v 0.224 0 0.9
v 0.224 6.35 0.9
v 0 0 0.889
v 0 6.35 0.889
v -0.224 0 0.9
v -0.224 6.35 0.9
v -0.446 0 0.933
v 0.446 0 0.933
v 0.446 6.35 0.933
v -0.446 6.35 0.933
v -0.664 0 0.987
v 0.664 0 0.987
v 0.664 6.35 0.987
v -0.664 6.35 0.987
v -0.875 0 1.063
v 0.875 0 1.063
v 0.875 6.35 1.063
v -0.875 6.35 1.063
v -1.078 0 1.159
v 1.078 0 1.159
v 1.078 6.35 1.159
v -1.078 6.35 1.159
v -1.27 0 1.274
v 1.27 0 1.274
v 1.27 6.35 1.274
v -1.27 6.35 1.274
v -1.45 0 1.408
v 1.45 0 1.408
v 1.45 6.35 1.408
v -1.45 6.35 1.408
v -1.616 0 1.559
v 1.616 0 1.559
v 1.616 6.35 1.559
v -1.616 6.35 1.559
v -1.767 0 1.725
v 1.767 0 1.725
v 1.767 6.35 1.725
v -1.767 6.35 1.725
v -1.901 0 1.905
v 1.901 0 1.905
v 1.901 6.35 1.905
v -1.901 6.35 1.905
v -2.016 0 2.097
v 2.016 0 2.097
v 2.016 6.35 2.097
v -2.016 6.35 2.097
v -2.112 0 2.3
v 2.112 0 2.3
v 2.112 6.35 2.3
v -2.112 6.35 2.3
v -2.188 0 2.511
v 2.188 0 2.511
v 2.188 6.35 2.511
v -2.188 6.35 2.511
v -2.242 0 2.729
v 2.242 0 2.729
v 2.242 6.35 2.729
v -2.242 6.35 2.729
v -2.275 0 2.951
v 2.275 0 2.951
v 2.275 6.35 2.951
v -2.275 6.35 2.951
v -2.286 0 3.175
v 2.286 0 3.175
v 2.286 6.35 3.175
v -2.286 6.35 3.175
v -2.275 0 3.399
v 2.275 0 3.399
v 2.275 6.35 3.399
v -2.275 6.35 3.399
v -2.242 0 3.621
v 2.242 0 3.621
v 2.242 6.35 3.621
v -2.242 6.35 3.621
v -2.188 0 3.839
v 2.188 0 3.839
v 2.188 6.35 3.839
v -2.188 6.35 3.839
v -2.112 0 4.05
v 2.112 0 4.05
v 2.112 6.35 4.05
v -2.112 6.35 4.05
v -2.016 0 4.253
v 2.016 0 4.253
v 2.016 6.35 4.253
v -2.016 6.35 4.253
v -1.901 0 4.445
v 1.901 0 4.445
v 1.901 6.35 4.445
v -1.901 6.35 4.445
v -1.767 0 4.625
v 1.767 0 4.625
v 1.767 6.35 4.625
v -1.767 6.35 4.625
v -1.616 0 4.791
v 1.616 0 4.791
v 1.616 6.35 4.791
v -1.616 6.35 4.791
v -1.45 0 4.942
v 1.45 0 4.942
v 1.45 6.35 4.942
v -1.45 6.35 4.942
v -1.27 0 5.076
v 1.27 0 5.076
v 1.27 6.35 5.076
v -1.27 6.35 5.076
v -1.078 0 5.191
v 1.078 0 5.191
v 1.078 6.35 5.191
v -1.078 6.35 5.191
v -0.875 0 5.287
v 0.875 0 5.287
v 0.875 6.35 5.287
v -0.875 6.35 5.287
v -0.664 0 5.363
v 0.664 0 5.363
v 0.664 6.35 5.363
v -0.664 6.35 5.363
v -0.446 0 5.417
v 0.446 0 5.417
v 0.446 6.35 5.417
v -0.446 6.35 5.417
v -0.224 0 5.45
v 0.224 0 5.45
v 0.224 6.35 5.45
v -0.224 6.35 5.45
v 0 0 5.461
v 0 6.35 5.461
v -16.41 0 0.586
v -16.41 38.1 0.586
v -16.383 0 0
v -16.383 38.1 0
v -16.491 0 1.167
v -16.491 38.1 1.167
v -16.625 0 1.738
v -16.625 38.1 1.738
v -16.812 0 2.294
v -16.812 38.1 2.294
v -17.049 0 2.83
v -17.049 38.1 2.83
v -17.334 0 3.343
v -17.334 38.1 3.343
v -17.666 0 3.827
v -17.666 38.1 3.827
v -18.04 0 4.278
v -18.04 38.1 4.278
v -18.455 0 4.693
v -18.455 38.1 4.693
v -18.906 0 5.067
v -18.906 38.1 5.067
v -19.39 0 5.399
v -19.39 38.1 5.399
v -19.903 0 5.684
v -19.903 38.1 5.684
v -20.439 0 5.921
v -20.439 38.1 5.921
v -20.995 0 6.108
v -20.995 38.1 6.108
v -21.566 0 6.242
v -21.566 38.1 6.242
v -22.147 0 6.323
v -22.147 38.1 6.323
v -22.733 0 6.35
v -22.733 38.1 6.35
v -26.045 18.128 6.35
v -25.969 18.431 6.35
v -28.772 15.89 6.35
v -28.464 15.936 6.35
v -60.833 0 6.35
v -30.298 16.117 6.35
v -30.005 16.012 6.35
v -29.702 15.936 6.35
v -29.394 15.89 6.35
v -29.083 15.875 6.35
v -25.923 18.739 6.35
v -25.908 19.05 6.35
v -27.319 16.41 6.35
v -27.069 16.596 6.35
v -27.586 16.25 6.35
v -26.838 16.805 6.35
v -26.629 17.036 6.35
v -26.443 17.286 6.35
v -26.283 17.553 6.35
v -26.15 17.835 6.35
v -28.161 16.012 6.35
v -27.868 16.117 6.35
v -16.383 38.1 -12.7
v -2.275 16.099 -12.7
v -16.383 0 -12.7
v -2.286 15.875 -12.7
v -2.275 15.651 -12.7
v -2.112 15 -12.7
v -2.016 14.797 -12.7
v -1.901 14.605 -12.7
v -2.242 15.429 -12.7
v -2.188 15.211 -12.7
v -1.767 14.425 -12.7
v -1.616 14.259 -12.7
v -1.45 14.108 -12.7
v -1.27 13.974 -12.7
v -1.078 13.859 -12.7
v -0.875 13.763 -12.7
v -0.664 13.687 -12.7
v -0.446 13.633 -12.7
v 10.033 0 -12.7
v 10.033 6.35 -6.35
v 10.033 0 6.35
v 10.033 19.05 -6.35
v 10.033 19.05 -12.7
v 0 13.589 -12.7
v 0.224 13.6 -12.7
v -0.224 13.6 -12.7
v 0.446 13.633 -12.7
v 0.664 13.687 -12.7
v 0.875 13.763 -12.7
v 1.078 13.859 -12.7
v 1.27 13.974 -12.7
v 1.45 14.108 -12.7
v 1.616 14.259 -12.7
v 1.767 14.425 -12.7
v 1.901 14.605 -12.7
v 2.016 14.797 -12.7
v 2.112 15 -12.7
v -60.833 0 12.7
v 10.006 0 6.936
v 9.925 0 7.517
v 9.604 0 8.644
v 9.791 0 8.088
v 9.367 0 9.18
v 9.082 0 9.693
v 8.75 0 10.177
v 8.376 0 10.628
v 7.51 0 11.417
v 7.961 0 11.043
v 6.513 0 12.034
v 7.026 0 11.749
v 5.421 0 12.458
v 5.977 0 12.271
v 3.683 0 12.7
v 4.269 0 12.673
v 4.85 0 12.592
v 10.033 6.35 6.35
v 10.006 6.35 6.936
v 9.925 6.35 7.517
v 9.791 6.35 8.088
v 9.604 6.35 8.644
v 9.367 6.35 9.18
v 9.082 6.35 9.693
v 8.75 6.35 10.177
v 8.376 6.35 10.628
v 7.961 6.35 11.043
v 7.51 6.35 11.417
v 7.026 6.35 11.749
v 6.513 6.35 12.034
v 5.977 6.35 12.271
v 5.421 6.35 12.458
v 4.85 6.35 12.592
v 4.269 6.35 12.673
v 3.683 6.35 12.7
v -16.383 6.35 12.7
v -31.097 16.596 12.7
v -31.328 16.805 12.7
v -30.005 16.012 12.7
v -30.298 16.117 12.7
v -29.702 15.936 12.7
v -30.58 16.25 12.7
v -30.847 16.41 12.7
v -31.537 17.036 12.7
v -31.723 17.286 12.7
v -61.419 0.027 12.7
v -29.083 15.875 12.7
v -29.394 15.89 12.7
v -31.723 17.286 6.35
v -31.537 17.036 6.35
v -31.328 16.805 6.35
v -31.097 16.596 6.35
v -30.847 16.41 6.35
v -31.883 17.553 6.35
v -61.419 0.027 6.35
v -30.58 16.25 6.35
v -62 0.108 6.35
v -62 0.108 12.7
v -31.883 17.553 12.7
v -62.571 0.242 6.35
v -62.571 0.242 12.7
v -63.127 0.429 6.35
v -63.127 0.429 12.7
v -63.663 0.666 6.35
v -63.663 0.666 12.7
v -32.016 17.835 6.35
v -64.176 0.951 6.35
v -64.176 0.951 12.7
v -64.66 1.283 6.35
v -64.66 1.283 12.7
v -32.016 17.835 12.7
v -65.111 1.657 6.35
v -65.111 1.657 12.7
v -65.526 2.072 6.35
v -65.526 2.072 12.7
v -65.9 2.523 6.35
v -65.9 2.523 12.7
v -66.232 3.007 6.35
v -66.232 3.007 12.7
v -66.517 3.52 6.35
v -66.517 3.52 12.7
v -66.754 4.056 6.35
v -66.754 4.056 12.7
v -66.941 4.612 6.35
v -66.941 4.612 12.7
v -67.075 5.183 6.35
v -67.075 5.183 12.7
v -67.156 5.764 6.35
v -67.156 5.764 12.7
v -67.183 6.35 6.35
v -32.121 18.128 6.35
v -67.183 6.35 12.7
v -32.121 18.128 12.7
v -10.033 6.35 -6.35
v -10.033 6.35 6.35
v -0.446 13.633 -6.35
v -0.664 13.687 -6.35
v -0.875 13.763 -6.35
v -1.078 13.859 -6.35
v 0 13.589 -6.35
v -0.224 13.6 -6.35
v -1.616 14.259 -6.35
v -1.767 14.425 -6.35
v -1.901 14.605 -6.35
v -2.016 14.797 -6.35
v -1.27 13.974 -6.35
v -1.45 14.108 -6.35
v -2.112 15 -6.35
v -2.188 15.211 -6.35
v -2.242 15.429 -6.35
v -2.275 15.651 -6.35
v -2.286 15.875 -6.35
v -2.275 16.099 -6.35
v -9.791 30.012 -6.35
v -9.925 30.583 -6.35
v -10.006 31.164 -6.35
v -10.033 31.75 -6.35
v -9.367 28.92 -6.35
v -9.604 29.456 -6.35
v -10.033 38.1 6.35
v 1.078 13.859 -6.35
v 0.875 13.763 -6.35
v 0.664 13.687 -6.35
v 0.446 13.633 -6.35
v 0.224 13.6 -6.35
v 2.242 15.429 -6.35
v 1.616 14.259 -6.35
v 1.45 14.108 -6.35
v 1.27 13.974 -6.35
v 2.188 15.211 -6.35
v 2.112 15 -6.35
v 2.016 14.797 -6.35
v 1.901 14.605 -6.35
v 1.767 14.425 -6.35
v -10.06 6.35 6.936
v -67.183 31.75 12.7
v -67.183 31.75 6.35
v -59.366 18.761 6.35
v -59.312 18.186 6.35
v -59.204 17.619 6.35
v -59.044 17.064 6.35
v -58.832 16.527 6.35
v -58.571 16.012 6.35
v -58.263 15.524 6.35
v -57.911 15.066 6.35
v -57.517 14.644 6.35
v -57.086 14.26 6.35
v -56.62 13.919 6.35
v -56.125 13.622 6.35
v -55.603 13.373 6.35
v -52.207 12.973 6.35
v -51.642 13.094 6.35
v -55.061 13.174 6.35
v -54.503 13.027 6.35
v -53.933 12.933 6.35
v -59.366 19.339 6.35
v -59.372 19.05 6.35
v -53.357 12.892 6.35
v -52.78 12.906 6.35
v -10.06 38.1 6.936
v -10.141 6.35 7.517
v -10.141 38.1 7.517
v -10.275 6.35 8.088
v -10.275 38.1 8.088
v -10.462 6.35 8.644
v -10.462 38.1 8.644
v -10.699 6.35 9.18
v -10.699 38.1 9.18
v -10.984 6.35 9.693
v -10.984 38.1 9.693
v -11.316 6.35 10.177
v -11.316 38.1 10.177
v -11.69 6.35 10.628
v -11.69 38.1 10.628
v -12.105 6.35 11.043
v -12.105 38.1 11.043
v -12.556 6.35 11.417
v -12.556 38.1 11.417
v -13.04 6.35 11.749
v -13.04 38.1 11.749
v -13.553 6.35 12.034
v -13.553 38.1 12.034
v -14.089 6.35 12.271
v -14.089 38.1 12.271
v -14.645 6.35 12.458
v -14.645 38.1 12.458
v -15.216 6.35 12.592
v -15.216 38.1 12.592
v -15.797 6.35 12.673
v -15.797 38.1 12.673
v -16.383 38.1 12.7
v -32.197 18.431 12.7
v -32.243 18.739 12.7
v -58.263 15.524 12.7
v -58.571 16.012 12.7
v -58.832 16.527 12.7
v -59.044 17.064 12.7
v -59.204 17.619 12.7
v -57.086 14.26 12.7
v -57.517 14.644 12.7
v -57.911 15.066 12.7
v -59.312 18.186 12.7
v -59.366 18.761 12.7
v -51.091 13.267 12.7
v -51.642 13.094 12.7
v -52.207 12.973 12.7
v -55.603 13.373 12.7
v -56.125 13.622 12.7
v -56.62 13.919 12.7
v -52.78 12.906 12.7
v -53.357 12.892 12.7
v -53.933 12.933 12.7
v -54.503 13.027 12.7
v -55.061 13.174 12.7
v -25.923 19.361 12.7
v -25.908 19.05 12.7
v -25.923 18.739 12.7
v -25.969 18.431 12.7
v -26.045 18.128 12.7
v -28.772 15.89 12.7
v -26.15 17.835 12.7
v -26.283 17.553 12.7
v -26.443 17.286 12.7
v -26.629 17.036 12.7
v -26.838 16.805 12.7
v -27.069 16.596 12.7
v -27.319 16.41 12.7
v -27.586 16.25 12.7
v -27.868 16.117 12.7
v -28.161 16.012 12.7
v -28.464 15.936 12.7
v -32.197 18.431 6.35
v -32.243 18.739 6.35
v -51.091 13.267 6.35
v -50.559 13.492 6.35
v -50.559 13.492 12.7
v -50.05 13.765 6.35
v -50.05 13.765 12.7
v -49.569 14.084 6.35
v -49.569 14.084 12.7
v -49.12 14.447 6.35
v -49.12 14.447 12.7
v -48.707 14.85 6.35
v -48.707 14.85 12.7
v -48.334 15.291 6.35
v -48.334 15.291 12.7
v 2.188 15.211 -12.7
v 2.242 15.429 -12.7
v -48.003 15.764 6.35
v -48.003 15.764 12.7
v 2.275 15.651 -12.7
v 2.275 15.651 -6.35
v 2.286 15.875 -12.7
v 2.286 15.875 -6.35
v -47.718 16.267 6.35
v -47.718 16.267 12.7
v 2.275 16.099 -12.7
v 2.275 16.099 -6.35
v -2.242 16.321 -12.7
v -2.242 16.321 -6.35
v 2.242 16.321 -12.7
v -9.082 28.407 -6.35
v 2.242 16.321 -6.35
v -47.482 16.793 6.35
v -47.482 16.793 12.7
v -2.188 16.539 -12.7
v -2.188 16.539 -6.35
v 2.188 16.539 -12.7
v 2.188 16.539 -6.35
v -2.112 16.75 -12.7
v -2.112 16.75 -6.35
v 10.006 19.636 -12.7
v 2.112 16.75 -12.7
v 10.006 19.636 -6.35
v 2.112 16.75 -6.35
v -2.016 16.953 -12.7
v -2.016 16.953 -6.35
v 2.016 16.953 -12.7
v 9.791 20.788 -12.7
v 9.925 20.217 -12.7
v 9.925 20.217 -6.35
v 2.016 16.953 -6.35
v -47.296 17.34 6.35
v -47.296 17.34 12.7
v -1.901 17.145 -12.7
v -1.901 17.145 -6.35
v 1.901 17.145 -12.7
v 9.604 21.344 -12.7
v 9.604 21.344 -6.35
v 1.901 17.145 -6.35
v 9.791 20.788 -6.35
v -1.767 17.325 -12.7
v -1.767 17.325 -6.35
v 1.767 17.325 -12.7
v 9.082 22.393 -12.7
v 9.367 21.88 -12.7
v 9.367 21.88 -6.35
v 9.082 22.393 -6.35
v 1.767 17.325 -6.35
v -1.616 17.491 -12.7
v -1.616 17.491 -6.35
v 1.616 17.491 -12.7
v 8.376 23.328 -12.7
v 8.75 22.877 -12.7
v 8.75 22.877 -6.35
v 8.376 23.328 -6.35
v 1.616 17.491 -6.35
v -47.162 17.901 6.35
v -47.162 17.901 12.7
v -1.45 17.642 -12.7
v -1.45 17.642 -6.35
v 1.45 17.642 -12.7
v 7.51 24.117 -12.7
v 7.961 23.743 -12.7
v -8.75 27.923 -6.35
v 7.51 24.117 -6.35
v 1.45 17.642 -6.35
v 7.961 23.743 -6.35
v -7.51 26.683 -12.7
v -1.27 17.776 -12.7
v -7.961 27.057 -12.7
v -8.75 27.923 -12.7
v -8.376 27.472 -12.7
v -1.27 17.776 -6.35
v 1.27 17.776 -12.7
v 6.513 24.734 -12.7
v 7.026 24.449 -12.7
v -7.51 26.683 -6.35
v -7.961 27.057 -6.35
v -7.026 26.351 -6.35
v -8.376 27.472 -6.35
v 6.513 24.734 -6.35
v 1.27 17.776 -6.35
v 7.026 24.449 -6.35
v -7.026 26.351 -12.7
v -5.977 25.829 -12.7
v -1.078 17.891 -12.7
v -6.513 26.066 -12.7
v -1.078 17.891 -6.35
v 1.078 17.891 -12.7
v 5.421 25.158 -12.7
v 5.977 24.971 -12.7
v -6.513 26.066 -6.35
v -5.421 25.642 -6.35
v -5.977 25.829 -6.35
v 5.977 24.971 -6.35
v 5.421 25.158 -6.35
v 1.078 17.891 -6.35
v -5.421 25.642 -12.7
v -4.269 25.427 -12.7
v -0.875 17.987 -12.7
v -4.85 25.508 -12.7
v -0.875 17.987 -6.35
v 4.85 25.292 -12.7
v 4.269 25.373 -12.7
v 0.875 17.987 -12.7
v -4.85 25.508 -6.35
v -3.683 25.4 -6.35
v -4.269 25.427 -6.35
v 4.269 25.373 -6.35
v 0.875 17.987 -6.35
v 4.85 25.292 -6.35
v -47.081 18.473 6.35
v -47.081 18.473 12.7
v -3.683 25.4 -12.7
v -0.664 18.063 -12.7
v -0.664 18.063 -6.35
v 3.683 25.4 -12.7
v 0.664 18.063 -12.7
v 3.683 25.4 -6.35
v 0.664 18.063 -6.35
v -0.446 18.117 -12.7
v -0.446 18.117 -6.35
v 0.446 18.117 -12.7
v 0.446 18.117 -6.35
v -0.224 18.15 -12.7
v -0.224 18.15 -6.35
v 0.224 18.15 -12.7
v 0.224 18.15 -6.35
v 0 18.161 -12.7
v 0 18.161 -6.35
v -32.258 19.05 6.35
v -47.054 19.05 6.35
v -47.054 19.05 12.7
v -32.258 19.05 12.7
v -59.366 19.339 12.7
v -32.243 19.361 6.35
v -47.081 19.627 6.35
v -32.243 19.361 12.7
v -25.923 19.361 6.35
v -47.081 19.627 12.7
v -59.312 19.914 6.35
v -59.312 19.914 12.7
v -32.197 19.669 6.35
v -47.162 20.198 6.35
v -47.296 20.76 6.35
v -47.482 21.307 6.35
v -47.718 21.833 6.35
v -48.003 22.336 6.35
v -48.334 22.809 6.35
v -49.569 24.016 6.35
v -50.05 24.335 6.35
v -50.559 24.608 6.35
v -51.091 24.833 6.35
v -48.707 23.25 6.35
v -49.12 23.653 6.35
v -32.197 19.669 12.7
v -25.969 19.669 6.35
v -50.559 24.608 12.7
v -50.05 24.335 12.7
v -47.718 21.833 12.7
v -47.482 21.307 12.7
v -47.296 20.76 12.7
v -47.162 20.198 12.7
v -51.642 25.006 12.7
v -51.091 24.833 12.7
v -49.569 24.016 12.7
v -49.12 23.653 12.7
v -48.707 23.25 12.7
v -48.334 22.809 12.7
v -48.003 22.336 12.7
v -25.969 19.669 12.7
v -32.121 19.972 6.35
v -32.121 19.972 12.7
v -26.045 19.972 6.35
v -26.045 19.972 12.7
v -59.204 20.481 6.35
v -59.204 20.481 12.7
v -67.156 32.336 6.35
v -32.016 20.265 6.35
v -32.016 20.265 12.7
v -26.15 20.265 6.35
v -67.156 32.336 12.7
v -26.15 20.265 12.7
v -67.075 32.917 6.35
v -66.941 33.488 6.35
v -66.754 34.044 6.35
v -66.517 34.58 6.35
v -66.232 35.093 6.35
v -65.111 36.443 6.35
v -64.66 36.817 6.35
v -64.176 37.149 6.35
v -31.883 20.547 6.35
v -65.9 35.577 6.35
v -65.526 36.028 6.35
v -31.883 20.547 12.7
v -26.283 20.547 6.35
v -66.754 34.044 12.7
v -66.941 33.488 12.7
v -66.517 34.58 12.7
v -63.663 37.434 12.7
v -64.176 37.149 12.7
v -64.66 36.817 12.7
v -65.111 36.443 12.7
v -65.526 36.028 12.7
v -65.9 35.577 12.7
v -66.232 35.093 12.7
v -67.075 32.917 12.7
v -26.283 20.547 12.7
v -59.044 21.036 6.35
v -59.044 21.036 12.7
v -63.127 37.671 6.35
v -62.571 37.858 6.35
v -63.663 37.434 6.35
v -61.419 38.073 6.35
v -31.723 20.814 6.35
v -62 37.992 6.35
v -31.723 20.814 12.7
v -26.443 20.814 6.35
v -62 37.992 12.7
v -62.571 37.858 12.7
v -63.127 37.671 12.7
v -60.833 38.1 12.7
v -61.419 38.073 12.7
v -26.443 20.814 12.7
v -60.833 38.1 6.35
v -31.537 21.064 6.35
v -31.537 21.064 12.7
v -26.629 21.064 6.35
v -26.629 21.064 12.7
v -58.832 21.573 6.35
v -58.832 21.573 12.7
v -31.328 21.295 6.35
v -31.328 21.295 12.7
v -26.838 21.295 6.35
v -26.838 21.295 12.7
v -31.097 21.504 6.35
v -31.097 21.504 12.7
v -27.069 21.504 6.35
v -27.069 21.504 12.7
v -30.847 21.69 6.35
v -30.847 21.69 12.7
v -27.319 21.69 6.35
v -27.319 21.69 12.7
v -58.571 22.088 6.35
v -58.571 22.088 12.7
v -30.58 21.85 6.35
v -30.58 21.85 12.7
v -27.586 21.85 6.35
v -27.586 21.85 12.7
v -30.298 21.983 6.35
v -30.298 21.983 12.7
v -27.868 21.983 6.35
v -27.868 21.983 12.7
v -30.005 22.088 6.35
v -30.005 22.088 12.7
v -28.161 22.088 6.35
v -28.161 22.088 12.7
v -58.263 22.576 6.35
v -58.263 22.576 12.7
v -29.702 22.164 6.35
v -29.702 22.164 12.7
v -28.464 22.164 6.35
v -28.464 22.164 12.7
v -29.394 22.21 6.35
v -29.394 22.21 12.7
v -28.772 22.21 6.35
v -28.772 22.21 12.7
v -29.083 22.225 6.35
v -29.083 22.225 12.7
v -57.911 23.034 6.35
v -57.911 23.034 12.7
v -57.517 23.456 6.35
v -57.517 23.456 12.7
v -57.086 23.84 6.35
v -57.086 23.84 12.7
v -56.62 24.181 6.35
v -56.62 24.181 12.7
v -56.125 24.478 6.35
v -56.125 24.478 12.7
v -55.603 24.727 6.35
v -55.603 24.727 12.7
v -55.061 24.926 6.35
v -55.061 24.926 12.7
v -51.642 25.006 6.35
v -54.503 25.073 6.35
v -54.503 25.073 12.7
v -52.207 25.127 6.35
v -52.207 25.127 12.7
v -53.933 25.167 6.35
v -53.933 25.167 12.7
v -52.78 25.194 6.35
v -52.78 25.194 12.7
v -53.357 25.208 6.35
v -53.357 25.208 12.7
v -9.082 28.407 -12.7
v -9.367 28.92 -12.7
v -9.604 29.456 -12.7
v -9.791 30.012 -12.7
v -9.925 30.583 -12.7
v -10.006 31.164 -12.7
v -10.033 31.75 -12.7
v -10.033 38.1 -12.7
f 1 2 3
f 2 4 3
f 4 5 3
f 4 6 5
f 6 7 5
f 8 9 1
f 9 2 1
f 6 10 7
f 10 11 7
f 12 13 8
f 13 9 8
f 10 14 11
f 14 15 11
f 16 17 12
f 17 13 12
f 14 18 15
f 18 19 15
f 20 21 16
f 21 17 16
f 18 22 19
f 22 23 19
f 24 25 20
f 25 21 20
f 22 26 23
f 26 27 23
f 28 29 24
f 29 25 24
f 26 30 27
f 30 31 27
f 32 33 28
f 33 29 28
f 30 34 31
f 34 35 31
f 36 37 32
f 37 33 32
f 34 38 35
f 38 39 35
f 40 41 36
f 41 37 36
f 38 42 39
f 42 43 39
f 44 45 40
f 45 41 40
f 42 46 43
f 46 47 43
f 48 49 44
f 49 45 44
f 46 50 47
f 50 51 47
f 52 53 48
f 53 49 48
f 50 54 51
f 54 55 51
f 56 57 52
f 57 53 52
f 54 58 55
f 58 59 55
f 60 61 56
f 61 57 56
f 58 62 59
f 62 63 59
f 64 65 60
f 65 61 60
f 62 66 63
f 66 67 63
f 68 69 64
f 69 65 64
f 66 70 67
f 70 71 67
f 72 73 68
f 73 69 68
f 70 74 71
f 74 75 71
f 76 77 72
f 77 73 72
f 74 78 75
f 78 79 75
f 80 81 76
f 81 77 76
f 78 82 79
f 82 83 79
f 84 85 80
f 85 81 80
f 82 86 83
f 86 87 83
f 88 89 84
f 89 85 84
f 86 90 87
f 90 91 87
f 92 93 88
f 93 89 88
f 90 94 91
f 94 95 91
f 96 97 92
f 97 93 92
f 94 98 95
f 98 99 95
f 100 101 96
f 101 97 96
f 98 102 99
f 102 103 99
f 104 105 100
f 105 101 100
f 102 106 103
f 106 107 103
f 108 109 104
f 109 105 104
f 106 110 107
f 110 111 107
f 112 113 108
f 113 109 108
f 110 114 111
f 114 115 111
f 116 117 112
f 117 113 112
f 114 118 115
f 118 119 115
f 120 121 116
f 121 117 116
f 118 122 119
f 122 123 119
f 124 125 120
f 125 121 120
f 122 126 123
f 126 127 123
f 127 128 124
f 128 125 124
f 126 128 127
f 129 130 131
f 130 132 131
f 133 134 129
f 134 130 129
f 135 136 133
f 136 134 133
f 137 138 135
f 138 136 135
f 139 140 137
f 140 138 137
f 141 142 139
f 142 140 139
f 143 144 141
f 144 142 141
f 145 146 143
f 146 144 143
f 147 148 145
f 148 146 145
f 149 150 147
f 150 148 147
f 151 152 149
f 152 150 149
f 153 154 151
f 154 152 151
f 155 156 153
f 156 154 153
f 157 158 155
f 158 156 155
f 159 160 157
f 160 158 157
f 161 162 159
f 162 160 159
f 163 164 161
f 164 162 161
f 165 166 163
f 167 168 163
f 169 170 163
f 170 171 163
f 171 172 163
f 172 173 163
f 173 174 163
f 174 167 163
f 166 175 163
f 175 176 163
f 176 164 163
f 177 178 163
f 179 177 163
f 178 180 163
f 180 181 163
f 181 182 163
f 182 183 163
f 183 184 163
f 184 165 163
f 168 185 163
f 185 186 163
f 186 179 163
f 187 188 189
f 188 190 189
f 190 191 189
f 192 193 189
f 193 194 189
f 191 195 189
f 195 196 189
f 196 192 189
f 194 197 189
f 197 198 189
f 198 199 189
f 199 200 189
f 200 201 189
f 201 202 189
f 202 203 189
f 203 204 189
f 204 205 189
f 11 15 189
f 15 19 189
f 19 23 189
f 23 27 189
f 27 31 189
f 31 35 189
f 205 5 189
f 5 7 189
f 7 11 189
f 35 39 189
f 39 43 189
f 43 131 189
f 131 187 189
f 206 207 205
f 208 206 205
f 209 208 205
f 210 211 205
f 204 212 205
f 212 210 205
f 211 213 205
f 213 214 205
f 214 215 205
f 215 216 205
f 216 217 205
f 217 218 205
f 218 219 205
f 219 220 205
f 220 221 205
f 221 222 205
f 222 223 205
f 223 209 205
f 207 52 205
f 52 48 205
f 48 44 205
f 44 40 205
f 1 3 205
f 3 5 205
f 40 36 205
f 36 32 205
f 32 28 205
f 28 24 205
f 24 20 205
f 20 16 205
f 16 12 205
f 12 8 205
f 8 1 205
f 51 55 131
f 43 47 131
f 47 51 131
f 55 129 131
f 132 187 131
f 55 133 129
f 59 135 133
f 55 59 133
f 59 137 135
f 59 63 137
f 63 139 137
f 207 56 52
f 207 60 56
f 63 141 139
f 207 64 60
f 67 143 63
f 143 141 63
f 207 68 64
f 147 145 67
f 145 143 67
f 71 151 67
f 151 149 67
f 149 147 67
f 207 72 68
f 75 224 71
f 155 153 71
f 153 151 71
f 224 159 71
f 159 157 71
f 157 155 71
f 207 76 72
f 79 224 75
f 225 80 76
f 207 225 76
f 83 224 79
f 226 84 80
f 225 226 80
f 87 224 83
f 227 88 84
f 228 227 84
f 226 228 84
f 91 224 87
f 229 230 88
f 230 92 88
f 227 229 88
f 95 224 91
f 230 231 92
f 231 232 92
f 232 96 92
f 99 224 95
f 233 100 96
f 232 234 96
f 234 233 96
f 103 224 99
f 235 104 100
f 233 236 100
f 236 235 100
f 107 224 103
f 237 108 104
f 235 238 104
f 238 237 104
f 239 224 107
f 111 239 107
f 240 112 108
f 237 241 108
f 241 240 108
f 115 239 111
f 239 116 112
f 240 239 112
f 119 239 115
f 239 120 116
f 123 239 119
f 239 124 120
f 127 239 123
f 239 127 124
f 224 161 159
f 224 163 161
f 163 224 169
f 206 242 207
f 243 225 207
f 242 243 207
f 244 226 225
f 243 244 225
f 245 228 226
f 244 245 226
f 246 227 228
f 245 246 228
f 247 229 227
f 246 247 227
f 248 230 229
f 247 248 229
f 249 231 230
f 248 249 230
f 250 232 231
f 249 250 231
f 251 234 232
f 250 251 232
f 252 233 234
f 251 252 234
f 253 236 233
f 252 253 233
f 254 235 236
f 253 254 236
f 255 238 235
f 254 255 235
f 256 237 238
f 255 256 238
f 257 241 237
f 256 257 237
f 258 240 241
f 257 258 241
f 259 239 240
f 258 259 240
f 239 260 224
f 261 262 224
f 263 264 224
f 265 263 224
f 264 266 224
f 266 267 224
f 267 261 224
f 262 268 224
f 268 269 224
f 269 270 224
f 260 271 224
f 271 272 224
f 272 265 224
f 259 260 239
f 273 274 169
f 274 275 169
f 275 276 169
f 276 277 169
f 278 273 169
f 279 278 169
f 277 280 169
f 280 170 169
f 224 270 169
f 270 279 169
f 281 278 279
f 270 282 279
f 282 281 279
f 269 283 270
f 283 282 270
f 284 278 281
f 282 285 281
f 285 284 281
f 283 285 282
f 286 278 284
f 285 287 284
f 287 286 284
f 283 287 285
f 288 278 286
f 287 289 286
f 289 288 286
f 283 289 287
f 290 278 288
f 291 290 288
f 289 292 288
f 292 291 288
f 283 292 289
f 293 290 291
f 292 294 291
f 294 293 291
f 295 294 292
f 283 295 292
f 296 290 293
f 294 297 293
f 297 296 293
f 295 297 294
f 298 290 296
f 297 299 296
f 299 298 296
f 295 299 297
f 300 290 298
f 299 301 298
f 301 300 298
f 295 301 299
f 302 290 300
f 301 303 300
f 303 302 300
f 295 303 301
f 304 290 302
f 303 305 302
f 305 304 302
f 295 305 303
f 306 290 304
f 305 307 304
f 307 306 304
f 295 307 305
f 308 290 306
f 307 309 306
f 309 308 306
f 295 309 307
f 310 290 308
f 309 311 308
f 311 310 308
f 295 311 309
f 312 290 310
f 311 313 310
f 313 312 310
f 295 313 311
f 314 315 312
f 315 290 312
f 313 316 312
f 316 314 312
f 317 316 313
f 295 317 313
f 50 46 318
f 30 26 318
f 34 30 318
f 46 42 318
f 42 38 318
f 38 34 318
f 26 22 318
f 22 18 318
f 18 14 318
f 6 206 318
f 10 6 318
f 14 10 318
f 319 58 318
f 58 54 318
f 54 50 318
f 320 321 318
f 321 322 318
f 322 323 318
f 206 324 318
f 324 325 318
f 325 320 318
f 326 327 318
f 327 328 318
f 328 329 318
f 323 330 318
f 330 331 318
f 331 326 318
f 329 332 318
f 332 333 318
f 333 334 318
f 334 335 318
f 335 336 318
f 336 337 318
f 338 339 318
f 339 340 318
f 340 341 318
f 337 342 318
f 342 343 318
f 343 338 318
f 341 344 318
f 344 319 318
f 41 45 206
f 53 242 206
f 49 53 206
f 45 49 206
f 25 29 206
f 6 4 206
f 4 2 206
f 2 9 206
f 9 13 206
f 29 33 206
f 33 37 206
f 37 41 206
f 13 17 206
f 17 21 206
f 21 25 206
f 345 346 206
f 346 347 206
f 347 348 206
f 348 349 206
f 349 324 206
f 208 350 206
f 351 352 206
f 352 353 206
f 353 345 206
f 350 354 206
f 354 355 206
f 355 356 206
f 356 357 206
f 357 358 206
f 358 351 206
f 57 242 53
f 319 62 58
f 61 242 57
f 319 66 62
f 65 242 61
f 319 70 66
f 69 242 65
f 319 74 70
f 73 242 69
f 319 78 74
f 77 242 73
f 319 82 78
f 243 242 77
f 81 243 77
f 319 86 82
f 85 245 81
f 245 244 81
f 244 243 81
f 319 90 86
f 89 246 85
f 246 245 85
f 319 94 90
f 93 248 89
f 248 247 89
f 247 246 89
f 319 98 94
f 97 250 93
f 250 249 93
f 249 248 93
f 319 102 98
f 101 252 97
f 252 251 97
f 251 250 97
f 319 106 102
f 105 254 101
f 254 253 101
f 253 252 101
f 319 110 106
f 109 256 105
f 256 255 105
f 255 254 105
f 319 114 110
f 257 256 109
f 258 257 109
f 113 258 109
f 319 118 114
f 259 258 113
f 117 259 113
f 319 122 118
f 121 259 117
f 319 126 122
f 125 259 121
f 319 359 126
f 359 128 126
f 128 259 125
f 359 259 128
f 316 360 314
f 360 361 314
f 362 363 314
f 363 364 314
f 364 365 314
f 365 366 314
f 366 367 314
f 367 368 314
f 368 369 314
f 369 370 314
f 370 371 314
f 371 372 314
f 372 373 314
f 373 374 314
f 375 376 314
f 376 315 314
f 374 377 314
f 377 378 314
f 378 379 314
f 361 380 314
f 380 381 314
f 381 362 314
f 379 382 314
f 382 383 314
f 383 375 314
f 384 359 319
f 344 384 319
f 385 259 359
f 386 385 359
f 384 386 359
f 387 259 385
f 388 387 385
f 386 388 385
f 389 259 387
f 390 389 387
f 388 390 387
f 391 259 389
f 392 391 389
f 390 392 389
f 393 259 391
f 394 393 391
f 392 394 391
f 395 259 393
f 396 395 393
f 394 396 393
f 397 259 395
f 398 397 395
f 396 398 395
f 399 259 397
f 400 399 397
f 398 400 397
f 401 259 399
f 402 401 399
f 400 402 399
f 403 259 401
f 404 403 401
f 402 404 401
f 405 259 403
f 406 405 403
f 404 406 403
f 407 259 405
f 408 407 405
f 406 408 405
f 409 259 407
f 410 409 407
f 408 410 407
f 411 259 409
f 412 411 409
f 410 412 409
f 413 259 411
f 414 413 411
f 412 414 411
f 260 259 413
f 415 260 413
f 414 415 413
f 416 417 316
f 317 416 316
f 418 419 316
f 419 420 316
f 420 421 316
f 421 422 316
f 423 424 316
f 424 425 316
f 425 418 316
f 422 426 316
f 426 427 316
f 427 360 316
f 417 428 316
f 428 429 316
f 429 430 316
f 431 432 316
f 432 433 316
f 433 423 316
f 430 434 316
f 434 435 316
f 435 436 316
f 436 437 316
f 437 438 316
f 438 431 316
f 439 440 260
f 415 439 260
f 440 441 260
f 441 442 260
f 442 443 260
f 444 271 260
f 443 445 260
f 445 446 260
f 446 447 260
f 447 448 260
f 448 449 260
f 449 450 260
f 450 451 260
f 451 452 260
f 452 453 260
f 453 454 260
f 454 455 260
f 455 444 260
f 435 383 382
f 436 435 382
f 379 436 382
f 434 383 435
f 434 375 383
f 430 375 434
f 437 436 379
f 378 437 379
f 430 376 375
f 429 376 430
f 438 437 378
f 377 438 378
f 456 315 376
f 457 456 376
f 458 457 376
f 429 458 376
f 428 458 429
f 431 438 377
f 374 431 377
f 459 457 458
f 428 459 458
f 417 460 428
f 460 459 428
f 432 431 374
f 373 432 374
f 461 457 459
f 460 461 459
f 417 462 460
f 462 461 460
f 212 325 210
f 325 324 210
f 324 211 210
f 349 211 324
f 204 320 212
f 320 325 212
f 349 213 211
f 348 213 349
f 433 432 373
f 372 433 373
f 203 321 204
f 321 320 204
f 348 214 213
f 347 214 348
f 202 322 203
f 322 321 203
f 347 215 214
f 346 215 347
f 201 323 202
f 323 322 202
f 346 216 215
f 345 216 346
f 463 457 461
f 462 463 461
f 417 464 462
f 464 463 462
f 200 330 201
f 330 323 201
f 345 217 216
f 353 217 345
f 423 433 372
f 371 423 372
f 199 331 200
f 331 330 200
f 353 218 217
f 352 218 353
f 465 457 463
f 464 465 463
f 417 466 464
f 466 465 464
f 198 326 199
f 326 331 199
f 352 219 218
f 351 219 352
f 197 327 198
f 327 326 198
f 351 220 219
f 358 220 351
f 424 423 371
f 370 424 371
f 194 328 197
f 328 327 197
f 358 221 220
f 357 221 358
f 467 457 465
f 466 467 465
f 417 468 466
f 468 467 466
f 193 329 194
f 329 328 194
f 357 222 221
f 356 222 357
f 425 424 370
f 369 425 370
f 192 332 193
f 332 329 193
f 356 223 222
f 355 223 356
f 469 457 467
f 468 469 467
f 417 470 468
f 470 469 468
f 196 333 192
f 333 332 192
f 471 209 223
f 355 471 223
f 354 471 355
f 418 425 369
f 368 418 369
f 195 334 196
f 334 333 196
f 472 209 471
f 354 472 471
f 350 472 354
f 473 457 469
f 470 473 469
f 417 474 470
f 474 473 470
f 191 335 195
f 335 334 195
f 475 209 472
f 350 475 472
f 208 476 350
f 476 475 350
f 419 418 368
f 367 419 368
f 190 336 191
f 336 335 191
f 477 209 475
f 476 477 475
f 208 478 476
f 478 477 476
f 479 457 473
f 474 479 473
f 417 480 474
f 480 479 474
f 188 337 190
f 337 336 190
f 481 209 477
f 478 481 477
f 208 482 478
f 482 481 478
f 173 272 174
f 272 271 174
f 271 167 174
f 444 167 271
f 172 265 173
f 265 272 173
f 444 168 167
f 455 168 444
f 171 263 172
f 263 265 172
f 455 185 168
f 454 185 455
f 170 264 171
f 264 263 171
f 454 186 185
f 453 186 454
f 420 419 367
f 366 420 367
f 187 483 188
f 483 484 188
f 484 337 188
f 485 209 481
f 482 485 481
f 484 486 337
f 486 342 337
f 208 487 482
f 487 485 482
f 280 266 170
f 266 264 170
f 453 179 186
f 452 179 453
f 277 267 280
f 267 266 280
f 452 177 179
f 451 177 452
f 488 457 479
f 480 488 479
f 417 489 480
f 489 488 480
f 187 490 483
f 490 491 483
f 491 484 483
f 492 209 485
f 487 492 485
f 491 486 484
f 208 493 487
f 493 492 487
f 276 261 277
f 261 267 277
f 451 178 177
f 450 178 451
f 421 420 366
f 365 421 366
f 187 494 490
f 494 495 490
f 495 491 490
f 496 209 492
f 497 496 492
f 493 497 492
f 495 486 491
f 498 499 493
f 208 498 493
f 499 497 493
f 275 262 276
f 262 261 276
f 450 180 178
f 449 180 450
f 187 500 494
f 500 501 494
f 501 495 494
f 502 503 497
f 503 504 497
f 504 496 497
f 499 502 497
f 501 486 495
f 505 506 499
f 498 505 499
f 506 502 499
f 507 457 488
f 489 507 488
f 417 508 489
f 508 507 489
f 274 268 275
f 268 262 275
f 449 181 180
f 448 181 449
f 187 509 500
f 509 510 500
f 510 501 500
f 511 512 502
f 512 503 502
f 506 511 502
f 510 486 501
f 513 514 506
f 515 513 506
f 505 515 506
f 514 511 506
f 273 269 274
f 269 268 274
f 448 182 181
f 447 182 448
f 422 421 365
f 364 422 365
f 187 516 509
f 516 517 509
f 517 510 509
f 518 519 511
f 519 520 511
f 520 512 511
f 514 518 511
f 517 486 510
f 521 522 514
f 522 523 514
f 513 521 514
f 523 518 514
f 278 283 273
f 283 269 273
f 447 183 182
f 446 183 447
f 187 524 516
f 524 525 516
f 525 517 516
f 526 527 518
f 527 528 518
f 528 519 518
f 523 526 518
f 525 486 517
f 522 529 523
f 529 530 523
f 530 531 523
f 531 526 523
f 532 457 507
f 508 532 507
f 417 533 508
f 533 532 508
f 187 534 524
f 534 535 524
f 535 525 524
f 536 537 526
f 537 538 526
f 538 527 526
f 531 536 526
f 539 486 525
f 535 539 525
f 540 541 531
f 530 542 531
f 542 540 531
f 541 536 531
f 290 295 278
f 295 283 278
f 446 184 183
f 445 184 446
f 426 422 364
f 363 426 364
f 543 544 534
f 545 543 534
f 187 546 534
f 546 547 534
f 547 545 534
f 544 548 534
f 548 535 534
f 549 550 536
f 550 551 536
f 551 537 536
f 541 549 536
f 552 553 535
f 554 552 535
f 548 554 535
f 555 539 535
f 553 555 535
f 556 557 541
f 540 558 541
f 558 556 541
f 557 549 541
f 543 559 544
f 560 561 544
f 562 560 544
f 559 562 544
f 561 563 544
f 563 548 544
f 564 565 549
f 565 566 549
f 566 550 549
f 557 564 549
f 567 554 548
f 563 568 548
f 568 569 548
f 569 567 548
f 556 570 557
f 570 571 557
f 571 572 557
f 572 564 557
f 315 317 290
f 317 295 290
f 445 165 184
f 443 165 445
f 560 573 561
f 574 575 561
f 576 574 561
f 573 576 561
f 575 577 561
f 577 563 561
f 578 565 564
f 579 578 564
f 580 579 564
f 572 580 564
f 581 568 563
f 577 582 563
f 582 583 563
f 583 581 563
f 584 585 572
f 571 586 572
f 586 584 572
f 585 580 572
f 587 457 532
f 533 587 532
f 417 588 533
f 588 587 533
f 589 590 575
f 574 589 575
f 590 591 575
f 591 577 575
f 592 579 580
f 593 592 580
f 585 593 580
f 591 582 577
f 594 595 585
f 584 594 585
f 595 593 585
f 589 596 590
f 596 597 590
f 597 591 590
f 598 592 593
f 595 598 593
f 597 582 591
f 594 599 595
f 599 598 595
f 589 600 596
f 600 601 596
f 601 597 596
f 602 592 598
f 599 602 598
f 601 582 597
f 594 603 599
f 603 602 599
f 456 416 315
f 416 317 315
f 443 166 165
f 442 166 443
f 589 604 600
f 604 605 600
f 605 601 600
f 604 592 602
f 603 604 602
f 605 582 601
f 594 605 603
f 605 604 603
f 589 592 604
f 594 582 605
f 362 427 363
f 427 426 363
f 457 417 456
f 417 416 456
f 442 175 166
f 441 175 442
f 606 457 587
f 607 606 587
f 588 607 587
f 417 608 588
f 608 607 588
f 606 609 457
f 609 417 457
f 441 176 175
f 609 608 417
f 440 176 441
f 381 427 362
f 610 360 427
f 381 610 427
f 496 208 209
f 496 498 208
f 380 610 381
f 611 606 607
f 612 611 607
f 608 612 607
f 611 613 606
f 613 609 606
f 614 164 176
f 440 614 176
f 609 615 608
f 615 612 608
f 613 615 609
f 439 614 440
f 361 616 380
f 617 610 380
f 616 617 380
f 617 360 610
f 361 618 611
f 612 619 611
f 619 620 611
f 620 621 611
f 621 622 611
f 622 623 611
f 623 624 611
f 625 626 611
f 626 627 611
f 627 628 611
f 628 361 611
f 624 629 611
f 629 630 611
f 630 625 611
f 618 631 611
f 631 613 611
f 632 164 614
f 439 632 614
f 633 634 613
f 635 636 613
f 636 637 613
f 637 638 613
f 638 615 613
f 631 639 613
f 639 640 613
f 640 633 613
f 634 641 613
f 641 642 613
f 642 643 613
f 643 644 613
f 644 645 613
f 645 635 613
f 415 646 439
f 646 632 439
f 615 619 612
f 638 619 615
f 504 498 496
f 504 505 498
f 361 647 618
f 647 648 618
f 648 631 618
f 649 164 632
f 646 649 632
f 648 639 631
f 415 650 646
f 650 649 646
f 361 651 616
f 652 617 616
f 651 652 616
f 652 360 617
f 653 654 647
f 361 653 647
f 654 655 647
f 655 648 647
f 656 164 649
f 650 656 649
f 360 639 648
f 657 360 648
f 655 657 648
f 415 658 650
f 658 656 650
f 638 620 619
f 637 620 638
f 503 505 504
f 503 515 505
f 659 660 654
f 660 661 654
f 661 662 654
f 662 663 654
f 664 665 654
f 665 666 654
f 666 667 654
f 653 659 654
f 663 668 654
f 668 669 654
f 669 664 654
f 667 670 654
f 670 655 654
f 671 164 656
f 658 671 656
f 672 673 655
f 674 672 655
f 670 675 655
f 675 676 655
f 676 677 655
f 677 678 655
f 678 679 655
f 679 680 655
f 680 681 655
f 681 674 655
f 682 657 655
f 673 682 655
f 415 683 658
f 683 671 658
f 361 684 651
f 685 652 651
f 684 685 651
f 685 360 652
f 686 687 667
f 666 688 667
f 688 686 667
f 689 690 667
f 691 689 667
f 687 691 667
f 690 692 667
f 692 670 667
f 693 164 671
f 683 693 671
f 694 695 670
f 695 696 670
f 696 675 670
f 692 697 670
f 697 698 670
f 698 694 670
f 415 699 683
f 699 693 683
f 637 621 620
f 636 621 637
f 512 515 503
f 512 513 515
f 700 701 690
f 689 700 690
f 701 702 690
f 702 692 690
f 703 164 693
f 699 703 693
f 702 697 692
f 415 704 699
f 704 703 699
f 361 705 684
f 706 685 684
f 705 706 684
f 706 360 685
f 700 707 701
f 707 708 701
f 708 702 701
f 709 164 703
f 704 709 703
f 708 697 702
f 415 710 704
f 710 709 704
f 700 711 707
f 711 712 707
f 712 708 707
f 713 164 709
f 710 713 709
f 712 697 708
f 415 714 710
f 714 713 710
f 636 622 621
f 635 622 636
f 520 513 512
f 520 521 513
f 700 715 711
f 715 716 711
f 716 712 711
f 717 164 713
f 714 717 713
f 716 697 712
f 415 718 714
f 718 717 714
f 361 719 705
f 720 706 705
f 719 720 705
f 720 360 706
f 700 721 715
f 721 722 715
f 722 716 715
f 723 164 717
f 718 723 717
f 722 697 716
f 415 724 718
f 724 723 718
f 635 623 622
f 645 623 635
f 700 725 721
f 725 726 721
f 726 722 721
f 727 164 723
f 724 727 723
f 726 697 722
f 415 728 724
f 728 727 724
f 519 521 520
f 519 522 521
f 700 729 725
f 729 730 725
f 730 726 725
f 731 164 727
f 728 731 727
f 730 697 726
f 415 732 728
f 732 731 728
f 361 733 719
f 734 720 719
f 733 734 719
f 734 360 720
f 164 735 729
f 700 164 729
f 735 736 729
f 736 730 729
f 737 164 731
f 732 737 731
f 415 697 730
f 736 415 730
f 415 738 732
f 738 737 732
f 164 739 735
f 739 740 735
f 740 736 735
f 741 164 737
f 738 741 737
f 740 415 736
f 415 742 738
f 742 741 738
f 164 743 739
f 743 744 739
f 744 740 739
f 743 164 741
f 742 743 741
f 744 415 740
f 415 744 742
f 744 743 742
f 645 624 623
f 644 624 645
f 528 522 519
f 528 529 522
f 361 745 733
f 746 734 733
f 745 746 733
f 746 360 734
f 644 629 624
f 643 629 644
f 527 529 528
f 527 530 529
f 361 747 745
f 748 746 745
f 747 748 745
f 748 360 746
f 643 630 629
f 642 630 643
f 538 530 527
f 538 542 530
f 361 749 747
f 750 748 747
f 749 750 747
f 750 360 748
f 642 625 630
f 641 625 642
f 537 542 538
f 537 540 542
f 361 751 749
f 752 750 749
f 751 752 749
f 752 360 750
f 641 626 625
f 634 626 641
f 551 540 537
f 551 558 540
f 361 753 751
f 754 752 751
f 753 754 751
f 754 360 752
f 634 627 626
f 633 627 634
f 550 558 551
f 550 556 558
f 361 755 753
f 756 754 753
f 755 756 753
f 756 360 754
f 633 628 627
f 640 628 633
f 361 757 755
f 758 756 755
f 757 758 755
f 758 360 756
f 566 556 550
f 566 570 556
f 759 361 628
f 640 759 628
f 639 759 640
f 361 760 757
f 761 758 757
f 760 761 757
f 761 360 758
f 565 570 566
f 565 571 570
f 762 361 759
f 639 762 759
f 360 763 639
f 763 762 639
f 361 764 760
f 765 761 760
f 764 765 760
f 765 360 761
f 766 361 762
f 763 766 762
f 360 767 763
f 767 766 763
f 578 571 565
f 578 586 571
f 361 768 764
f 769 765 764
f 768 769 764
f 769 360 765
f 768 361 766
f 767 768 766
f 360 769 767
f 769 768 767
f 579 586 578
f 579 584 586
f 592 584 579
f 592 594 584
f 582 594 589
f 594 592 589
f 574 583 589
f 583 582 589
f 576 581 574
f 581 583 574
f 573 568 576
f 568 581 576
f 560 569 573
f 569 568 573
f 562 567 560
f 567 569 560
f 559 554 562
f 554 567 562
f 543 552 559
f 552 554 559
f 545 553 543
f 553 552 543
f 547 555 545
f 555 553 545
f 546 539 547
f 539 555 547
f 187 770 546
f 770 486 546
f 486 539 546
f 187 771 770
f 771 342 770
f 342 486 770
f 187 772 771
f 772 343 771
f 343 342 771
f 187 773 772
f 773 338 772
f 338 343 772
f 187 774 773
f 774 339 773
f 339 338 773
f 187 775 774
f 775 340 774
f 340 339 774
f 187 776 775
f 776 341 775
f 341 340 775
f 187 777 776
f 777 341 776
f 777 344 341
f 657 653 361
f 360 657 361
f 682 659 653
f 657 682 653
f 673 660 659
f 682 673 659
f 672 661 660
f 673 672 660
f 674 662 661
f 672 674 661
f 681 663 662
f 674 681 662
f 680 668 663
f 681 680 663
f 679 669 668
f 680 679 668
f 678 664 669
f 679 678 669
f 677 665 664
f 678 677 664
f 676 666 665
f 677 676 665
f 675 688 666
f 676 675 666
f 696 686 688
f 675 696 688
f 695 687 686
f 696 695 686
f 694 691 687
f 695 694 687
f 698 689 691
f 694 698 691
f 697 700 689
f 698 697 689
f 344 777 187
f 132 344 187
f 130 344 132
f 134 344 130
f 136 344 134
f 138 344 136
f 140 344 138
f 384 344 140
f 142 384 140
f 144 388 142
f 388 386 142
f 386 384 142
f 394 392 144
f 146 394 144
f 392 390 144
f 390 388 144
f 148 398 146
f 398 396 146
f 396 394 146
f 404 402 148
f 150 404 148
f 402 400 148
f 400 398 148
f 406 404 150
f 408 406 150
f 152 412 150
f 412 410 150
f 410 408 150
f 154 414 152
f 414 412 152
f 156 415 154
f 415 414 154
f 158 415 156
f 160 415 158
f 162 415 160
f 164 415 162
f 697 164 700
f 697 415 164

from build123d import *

# Parameters (mm, degrees)
SKETCH1_W           = 20.066
SKETCH1_H           = 25.4
BOSS_EXTRUDE1_DEPTH = 6.35
SKETCH2_W           = 20.066
SKETCH2_H           = 25.4
BOSS_EXTRUDE2_DEPTH = 6.35
SKETCH3_W           = 25.4
SKETCH3_H           = 38.1
BOSS_EXTRUDE3_DEPTH = 6.35
SKETCH4_W           = 50.8
SKETCH4_H           = 38.1
BOSS_EXTRUDE4_DEPTH = 6.35
SKETCH6_R           = 2.286
CUT_EXTRUDE1_DEPTH  = 7.35
SKETCH7_R           = 2.286
CUT_EXTRUDE2_DEPTH  = 7.35
SKETCH8_R           = 6.1595
SKETCH8_R_2         = 3.175
CUT_EXTRUDE3_DEPTH  = 26.4
FILLET1_R           = 6.35


with BuildPart() as part:
    # Sketch1 → Boss-Extrude1 (new body)
    with BuildSketch(Plane(origin=(0, 0, 0), x_dir=(1, 0, 0), z_dir=(0, 1, 0))):
        Rectangle(SKETCH1_W, SKETCH1_H)
    extrude(amount=BOSS_EXTRUDE1_DEPTH)

    # Sketch2 → Boss-Extrude2 (add)
    with BuildSketch(Plane(origin=(0, 0, -12.7), x_dir=(-1, 0, 0), z_dir=(0, 0, -1))):
        with Locations((0, 12.7)):
            Rectangle(SKETCH2_W, SKETCH2_H)
    extrude(amount=-BOSS_EXTRUDE2_DEPTH)

    # Sketch3 → Boss-Extrude3 (add)
    with BuildSketch(Plane.ZY.offset(10.033)):
        with Locations((0, 19.05)):
            Rectangle(SKETCH3_W, SKETCH3_H)
    extrude(amount=BOSS_EXTRUDE3_DEPTH)

    # Sketch4 → Boss-Extrude4 (add)
    with BuildSketch(Plane.XY.offset(12.7)):
        with Locations((-41.783, 19.05)):
            Rectangle(SKETCH4_W, SKETCH4_H)
    extrude(amount=-BOSS_EXTRUDE4_DEPTH)

    # Sketch6 → Cut-Extrude1 (cut, through all)
    with BuildSketch(Plane.XY.offset(-6.35)):
        with Locations((0, 15.875)):
            Circle(SKETCH6_R)
    extrude(amount=-CUT_EXTRUDE1_DEPTH, mode=Mode.SUBTRACT)

    # Sketch7 → Cut-Extrude2 (cut, through all)
    with BuildSketch(Plane(origin=(0, 6.35, 0), x_dir=(1, 0, 0), z_dir=(0, 1, 0))):
        with Locations((0, -3.175)):
            Circle(SKETCH7_R)
    extrude(amount=-CUT_EXTRUDE2_DEPTH, mode=Mode.SUBTRACT)

    # Sketch8 → Cut-Extrude3 (cut, through all)
    with BuildSketch(Plane.XY.offset(12.7)):
        with Locations((-53.213, 19.05)):
            Circle(SKETCH8_R)
        with Locations((-29.083, 19.05)):
            Circle(SKETCH8_R_2)
    extrude(amount=-CUT_EXTRUDE3_DEPTH, mode=Mode.SUBTRACT)

    # Fillet1
    fillet1_edges = [part.edges().sort_by_distance(p)[0] for p in [
        (-10.033, 25.4, -9.525),
        (10.033, 25.4, -9.525),
        (-10.033, 22.225, 12.7),
        (-16.383, 19.05, 6.35),
        (-67.183, 0, 9.525),
        (-67.183, 38.1, 9.525),
        (10.033, 3.175, 12.7),
    ]]
    fillet(fillet1_edges, radius=FILLET1_R)


solid = part.part
